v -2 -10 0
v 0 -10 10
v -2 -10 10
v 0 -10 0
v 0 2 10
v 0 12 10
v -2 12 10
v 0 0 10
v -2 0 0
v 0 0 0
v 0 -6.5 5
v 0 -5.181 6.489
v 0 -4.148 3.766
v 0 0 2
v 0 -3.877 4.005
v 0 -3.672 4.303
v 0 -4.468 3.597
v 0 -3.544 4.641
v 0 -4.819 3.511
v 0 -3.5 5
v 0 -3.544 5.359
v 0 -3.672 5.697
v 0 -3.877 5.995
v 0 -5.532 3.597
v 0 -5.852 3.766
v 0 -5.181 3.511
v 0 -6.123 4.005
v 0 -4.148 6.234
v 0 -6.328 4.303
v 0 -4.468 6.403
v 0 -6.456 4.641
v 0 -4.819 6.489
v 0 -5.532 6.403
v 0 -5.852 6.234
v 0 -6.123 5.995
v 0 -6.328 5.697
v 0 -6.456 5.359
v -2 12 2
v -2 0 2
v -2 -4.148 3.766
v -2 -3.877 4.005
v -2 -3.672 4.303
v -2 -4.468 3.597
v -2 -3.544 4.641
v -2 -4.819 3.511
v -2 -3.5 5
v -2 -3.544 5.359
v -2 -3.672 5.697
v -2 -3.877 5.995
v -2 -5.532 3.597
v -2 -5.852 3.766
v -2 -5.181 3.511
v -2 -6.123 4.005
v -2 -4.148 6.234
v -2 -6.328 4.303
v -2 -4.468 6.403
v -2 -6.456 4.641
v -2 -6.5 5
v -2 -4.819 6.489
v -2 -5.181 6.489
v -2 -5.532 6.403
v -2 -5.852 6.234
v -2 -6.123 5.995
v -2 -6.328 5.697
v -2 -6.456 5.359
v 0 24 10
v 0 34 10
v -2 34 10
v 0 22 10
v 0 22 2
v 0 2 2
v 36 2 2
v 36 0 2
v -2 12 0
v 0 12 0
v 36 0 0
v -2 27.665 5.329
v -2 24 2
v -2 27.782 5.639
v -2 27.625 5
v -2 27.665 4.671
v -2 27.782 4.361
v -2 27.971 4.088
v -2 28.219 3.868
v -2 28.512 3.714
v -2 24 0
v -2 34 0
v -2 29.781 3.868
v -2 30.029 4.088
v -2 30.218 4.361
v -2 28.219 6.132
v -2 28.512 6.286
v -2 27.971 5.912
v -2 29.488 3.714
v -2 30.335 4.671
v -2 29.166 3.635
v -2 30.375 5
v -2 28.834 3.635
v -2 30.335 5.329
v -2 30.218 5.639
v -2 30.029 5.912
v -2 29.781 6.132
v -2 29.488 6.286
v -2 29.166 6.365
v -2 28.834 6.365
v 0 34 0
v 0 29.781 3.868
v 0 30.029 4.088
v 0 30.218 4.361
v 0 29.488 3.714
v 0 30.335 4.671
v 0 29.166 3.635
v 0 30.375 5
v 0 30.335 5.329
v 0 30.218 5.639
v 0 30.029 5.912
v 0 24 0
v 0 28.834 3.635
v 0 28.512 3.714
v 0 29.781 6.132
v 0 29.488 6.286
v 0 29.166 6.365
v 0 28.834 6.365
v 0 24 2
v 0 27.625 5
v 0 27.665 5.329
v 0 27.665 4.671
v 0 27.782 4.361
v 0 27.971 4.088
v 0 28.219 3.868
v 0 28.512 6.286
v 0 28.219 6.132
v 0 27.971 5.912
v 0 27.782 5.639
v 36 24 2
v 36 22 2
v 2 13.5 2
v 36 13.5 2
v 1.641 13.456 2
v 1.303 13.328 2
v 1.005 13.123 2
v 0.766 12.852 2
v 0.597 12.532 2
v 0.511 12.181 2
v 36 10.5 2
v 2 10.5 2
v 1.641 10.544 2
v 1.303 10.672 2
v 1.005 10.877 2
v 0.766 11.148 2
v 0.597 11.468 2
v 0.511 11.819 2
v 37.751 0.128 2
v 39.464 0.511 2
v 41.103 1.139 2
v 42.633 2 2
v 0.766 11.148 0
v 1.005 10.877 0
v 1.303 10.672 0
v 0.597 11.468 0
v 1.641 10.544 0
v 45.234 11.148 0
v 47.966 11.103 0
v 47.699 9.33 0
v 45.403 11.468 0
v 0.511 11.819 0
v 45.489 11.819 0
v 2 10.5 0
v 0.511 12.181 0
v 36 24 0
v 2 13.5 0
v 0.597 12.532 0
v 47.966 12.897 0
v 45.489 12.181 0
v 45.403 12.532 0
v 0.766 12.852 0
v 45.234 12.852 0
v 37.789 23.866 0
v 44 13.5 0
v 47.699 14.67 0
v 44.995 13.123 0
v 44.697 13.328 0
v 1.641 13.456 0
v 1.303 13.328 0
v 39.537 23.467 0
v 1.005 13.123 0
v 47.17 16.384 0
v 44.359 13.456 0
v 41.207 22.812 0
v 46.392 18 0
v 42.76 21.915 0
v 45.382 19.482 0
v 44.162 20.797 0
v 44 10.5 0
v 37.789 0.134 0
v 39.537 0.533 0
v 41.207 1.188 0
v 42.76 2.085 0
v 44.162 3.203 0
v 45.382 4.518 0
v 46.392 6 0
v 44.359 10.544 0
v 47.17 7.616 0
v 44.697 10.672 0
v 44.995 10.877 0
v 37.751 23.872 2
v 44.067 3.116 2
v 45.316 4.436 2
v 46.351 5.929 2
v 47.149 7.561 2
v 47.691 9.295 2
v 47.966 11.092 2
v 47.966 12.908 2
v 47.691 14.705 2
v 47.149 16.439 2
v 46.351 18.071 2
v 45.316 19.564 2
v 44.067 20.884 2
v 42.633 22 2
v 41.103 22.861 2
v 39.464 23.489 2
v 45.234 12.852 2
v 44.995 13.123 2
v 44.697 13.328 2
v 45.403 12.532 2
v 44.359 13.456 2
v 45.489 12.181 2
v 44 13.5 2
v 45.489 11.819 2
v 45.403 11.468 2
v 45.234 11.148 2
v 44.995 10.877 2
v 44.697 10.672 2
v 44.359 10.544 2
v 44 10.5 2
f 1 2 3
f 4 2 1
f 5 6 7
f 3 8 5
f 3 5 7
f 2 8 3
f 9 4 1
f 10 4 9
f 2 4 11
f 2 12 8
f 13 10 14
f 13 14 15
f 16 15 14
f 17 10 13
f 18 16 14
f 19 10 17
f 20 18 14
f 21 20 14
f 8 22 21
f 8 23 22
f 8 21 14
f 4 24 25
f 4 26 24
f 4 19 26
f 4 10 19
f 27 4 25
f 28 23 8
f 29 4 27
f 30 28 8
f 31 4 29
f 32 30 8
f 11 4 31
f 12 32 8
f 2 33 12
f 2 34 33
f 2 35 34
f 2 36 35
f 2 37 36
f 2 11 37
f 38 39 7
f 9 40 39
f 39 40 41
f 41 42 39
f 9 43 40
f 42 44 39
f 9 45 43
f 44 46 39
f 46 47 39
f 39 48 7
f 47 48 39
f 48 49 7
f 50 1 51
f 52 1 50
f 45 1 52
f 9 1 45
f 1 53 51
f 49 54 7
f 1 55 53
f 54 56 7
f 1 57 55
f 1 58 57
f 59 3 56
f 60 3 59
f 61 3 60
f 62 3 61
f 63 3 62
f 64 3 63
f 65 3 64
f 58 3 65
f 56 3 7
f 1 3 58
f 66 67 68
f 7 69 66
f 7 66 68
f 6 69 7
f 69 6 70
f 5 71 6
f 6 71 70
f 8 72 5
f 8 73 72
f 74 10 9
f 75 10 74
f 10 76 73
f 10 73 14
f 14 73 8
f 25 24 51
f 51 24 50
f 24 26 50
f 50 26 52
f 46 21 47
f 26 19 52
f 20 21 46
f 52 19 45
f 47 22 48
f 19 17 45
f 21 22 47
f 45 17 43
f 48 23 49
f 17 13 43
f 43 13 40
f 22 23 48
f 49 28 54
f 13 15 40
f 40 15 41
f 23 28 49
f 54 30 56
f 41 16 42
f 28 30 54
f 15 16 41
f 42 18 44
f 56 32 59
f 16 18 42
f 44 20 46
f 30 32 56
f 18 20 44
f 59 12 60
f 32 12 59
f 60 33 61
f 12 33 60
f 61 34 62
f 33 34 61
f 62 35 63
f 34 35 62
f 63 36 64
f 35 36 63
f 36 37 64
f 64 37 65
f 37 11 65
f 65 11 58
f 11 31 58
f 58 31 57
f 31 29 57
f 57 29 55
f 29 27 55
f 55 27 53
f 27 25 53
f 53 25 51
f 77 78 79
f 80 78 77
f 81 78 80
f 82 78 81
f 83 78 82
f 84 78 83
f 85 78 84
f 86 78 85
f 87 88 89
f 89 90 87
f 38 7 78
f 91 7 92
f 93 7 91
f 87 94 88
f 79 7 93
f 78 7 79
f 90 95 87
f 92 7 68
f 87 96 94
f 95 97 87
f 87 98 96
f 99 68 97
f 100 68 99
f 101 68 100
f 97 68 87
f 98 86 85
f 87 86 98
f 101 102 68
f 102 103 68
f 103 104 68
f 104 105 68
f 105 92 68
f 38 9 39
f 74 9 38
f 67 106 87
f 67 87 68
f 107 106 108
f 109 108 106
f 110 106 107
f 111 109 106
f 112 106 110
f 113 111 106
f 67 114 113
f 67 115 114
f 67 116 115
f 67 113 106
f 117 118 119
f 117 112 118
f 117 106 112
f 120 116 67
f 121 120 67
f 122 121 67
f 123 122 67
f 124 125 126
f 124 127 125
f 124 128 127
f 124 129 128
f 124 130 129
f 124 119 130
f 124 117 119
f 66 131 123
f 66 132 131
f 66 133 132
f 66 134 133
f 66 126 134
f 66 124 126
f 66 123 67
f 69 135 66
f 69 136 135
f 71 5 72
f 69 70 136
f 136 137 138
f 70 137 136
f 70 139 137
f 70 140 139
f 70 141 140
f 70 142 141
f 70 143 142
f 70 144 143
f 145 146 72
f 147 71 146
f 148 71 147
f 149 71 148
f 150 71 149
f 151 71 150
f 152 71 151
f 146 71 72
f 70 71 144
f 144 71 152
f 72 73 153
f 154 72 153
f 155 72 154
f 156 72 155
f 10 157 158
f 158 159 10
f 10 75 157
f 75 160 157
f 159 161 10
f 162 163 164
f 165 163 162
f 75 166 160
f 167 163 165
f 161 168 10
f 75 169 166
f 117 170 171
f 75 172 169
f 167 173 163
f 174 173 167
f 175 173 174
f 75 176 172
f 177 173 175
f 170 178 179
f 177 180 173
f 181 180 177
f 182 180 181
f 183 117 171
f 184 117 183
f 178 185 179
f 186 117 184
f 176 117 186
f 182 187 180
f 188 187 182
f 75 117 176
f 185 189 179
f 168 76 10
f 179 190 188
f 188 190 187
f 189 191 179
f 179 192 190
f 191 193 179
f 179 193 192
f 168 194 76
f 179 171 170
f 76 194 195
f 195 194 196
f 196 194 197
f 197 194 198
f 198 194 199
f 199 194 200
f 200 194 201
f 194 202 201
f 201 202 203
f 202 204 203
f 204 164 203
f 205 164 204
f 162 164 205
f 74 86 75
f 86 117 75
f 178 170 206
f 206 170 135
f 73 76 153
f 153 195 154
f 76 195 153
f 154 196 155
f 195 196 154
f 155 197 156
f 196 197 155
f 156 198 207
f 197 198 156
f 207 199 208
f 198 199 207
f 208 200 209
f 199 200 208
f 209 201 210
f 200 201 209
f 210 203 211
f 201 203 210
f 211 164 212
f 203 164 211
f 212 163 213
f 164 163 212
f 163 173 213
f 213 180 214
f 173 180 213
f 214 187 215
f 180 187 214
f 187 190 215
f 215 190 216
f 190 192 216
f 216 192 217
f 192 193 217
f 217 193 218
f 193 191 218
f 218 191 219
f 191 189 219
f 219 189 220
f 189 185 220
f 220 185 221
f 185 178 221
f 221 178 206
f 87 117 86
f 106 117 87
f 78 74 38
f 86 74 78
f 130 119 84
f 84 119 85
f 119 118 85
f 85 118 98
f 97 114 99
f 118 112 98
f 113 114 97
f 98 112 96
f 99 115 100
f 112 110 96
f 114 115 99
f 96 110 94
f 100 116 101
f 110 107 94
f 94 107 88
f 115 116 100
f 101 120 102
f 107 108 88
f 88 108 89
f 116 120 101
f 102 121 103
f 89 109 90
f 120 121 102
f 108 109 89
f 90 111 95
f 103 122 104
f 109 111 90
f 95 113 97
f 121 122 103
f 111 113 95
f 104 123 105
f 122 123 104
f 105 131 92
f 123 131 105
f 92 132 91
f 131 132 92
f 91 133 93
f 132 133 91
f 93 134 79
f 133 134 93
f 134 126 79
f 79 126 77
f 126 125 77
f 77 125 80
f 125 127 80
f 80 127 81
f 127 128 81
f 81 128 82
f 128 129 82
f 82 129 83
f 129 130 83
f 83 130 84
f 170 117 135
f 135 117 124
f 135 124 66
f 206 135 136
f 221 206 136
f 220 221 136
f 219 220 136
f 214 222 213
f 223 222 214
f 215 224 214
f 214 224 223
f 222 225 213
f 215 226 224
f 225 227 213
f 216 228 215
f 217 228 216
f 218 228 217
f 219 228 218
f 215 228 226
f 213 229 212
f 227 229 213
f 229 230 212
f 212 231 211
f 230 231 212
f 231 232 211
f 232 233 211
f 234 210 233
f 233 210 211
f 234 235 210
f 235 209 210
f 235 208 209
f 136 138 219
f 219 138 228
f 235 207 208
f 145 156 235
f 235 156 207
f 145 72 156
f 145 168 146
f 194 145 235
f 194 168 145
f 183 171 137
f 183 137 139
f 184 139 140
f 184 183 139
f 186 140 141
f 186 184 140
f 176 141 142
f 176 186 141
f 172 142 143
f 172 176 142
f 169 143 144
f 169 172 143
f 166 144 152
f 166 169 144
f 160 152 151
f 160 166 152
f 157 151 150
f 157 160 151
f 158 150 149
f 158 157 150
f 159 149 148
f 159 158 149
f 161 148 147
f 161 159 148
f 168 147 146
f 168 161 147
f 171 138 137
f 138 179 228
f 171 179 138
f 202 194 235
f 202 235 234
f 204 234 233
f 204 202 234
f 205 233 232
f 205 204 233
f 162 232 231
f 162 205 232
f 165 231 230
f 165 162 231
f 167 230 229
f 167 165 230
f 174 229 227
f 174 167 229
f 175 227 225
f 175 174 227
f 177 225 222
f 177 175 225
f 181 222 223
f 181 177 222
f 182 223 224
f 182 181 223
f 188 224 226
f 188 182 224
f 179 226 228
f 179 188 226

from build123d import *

# Parameters (mm, degrees)
SKETCH_W          = 22
SKETCH_H          = 10
PAD_DEPTH         = 2
SKETCH001_R       = 1.5
POCKET_DEPTH      = 2.001
POCKET_DEPTH_BACK = -0.001
SKETCH002_W       = 22
SKETCH002_H       = 10
PAD001_DEPTH      = 2
SKETCH003_R       = 1.375
POCKET001_DEPTH   = 2.001
PAD002_DEPTH      = 2
POCKET002_DEPTH   = 10.001
PAD003_DEPTH      = 24
SKETCH007_W       = 20
SKETCH007_H       = 8
POCKET003_DEPTH   = 48.001


with BuildPart() as part:
    # Sketch → Pad (new body)
    with BuildSketch(Plane.YZ):
        with Locations((1, 5)):
            Rectangle(SKETCH_W, SKETCH_H)
    extrude(amount=-PAD_DEPTH)

    # Sketch001 → Pocket (cut, two sides)
    with BuildSketch(Plane.YZ) as pocket_sk:
        with Locations((-5, 5)):
            Circle(SKETCH001_R)
    extrude(amount=-POCKET_DEPTH, mode=Mode.SUBTRACT)
    extrude(pocket_sk.sketch, amount=-POCKET_DEPTH_BACK, mode=Mode.SUBTRACT)

    # Sketch002 → Pad001 (join)
    with BuildSketch(Plane.YZ):
        with Locations((23, 5)):
            Rectangle(SKETCH002_W, SKETCH002_H)
    extrude(amount=-PAD001_DEPTH)

    # Sketch003 → Pocket001 (cut, through all)
    with BuildSketch(Plane.YZ):
        with Locations((29, 5)):
            Circle(SKETCH003_R)
    extrude(amount=-POCKET001_DEPTH, mode=Mode.SUBTRACT)

    # Sketch004 → Pad002 (join)
    with BuildSketch(Plane.XY):
        with BuildLine():
            ThreePointArc((36, 0), (48, 12), (36, 24))
            Line((36, 24), (-2, 24))
            Line((-2, 24), (-2, 0))
            Line((36, 0), (-2, 0))
        make_face()
    extrude(amount=PAD002_DEPTH)

    # Sketch005 → Pocket002 (cut, through all)
    with BuildSketch(Plane.XY):
        with BuildLine():
            ThreePointArc((2, 13.5), (0.5, 12), (2, 10.5))
            Line((2, 10.5), (44, 10.5))
            ThreePointArc((44, 10.5), (45.5, 12), (44, 13.5))
            Line((2, 13.5), (44, 13.5))
        make_face()
    extrude(amount=POCKET002_DEPTH, mode=Mode.SUBTRACT)

    # Sketch006 → Pad003 (join)
    with BuildSketch(Plane.XZ):
        Polygon((0, 10), (36, 2), (0, 2), align=None)
    extrude(amount=-PAD003_DEPTH)

    # Sketch007 → Pocket003 (cut, through all)
    with BuildSketch(Plane.YZ):
        with Locations((12, 6)):
            Rectangle(SKETCH007_W, SKETCH007_H)
    extrude(amount=POCKET003_DEPTH, mode=Mode.SUBTRACT)


solid = part.part
